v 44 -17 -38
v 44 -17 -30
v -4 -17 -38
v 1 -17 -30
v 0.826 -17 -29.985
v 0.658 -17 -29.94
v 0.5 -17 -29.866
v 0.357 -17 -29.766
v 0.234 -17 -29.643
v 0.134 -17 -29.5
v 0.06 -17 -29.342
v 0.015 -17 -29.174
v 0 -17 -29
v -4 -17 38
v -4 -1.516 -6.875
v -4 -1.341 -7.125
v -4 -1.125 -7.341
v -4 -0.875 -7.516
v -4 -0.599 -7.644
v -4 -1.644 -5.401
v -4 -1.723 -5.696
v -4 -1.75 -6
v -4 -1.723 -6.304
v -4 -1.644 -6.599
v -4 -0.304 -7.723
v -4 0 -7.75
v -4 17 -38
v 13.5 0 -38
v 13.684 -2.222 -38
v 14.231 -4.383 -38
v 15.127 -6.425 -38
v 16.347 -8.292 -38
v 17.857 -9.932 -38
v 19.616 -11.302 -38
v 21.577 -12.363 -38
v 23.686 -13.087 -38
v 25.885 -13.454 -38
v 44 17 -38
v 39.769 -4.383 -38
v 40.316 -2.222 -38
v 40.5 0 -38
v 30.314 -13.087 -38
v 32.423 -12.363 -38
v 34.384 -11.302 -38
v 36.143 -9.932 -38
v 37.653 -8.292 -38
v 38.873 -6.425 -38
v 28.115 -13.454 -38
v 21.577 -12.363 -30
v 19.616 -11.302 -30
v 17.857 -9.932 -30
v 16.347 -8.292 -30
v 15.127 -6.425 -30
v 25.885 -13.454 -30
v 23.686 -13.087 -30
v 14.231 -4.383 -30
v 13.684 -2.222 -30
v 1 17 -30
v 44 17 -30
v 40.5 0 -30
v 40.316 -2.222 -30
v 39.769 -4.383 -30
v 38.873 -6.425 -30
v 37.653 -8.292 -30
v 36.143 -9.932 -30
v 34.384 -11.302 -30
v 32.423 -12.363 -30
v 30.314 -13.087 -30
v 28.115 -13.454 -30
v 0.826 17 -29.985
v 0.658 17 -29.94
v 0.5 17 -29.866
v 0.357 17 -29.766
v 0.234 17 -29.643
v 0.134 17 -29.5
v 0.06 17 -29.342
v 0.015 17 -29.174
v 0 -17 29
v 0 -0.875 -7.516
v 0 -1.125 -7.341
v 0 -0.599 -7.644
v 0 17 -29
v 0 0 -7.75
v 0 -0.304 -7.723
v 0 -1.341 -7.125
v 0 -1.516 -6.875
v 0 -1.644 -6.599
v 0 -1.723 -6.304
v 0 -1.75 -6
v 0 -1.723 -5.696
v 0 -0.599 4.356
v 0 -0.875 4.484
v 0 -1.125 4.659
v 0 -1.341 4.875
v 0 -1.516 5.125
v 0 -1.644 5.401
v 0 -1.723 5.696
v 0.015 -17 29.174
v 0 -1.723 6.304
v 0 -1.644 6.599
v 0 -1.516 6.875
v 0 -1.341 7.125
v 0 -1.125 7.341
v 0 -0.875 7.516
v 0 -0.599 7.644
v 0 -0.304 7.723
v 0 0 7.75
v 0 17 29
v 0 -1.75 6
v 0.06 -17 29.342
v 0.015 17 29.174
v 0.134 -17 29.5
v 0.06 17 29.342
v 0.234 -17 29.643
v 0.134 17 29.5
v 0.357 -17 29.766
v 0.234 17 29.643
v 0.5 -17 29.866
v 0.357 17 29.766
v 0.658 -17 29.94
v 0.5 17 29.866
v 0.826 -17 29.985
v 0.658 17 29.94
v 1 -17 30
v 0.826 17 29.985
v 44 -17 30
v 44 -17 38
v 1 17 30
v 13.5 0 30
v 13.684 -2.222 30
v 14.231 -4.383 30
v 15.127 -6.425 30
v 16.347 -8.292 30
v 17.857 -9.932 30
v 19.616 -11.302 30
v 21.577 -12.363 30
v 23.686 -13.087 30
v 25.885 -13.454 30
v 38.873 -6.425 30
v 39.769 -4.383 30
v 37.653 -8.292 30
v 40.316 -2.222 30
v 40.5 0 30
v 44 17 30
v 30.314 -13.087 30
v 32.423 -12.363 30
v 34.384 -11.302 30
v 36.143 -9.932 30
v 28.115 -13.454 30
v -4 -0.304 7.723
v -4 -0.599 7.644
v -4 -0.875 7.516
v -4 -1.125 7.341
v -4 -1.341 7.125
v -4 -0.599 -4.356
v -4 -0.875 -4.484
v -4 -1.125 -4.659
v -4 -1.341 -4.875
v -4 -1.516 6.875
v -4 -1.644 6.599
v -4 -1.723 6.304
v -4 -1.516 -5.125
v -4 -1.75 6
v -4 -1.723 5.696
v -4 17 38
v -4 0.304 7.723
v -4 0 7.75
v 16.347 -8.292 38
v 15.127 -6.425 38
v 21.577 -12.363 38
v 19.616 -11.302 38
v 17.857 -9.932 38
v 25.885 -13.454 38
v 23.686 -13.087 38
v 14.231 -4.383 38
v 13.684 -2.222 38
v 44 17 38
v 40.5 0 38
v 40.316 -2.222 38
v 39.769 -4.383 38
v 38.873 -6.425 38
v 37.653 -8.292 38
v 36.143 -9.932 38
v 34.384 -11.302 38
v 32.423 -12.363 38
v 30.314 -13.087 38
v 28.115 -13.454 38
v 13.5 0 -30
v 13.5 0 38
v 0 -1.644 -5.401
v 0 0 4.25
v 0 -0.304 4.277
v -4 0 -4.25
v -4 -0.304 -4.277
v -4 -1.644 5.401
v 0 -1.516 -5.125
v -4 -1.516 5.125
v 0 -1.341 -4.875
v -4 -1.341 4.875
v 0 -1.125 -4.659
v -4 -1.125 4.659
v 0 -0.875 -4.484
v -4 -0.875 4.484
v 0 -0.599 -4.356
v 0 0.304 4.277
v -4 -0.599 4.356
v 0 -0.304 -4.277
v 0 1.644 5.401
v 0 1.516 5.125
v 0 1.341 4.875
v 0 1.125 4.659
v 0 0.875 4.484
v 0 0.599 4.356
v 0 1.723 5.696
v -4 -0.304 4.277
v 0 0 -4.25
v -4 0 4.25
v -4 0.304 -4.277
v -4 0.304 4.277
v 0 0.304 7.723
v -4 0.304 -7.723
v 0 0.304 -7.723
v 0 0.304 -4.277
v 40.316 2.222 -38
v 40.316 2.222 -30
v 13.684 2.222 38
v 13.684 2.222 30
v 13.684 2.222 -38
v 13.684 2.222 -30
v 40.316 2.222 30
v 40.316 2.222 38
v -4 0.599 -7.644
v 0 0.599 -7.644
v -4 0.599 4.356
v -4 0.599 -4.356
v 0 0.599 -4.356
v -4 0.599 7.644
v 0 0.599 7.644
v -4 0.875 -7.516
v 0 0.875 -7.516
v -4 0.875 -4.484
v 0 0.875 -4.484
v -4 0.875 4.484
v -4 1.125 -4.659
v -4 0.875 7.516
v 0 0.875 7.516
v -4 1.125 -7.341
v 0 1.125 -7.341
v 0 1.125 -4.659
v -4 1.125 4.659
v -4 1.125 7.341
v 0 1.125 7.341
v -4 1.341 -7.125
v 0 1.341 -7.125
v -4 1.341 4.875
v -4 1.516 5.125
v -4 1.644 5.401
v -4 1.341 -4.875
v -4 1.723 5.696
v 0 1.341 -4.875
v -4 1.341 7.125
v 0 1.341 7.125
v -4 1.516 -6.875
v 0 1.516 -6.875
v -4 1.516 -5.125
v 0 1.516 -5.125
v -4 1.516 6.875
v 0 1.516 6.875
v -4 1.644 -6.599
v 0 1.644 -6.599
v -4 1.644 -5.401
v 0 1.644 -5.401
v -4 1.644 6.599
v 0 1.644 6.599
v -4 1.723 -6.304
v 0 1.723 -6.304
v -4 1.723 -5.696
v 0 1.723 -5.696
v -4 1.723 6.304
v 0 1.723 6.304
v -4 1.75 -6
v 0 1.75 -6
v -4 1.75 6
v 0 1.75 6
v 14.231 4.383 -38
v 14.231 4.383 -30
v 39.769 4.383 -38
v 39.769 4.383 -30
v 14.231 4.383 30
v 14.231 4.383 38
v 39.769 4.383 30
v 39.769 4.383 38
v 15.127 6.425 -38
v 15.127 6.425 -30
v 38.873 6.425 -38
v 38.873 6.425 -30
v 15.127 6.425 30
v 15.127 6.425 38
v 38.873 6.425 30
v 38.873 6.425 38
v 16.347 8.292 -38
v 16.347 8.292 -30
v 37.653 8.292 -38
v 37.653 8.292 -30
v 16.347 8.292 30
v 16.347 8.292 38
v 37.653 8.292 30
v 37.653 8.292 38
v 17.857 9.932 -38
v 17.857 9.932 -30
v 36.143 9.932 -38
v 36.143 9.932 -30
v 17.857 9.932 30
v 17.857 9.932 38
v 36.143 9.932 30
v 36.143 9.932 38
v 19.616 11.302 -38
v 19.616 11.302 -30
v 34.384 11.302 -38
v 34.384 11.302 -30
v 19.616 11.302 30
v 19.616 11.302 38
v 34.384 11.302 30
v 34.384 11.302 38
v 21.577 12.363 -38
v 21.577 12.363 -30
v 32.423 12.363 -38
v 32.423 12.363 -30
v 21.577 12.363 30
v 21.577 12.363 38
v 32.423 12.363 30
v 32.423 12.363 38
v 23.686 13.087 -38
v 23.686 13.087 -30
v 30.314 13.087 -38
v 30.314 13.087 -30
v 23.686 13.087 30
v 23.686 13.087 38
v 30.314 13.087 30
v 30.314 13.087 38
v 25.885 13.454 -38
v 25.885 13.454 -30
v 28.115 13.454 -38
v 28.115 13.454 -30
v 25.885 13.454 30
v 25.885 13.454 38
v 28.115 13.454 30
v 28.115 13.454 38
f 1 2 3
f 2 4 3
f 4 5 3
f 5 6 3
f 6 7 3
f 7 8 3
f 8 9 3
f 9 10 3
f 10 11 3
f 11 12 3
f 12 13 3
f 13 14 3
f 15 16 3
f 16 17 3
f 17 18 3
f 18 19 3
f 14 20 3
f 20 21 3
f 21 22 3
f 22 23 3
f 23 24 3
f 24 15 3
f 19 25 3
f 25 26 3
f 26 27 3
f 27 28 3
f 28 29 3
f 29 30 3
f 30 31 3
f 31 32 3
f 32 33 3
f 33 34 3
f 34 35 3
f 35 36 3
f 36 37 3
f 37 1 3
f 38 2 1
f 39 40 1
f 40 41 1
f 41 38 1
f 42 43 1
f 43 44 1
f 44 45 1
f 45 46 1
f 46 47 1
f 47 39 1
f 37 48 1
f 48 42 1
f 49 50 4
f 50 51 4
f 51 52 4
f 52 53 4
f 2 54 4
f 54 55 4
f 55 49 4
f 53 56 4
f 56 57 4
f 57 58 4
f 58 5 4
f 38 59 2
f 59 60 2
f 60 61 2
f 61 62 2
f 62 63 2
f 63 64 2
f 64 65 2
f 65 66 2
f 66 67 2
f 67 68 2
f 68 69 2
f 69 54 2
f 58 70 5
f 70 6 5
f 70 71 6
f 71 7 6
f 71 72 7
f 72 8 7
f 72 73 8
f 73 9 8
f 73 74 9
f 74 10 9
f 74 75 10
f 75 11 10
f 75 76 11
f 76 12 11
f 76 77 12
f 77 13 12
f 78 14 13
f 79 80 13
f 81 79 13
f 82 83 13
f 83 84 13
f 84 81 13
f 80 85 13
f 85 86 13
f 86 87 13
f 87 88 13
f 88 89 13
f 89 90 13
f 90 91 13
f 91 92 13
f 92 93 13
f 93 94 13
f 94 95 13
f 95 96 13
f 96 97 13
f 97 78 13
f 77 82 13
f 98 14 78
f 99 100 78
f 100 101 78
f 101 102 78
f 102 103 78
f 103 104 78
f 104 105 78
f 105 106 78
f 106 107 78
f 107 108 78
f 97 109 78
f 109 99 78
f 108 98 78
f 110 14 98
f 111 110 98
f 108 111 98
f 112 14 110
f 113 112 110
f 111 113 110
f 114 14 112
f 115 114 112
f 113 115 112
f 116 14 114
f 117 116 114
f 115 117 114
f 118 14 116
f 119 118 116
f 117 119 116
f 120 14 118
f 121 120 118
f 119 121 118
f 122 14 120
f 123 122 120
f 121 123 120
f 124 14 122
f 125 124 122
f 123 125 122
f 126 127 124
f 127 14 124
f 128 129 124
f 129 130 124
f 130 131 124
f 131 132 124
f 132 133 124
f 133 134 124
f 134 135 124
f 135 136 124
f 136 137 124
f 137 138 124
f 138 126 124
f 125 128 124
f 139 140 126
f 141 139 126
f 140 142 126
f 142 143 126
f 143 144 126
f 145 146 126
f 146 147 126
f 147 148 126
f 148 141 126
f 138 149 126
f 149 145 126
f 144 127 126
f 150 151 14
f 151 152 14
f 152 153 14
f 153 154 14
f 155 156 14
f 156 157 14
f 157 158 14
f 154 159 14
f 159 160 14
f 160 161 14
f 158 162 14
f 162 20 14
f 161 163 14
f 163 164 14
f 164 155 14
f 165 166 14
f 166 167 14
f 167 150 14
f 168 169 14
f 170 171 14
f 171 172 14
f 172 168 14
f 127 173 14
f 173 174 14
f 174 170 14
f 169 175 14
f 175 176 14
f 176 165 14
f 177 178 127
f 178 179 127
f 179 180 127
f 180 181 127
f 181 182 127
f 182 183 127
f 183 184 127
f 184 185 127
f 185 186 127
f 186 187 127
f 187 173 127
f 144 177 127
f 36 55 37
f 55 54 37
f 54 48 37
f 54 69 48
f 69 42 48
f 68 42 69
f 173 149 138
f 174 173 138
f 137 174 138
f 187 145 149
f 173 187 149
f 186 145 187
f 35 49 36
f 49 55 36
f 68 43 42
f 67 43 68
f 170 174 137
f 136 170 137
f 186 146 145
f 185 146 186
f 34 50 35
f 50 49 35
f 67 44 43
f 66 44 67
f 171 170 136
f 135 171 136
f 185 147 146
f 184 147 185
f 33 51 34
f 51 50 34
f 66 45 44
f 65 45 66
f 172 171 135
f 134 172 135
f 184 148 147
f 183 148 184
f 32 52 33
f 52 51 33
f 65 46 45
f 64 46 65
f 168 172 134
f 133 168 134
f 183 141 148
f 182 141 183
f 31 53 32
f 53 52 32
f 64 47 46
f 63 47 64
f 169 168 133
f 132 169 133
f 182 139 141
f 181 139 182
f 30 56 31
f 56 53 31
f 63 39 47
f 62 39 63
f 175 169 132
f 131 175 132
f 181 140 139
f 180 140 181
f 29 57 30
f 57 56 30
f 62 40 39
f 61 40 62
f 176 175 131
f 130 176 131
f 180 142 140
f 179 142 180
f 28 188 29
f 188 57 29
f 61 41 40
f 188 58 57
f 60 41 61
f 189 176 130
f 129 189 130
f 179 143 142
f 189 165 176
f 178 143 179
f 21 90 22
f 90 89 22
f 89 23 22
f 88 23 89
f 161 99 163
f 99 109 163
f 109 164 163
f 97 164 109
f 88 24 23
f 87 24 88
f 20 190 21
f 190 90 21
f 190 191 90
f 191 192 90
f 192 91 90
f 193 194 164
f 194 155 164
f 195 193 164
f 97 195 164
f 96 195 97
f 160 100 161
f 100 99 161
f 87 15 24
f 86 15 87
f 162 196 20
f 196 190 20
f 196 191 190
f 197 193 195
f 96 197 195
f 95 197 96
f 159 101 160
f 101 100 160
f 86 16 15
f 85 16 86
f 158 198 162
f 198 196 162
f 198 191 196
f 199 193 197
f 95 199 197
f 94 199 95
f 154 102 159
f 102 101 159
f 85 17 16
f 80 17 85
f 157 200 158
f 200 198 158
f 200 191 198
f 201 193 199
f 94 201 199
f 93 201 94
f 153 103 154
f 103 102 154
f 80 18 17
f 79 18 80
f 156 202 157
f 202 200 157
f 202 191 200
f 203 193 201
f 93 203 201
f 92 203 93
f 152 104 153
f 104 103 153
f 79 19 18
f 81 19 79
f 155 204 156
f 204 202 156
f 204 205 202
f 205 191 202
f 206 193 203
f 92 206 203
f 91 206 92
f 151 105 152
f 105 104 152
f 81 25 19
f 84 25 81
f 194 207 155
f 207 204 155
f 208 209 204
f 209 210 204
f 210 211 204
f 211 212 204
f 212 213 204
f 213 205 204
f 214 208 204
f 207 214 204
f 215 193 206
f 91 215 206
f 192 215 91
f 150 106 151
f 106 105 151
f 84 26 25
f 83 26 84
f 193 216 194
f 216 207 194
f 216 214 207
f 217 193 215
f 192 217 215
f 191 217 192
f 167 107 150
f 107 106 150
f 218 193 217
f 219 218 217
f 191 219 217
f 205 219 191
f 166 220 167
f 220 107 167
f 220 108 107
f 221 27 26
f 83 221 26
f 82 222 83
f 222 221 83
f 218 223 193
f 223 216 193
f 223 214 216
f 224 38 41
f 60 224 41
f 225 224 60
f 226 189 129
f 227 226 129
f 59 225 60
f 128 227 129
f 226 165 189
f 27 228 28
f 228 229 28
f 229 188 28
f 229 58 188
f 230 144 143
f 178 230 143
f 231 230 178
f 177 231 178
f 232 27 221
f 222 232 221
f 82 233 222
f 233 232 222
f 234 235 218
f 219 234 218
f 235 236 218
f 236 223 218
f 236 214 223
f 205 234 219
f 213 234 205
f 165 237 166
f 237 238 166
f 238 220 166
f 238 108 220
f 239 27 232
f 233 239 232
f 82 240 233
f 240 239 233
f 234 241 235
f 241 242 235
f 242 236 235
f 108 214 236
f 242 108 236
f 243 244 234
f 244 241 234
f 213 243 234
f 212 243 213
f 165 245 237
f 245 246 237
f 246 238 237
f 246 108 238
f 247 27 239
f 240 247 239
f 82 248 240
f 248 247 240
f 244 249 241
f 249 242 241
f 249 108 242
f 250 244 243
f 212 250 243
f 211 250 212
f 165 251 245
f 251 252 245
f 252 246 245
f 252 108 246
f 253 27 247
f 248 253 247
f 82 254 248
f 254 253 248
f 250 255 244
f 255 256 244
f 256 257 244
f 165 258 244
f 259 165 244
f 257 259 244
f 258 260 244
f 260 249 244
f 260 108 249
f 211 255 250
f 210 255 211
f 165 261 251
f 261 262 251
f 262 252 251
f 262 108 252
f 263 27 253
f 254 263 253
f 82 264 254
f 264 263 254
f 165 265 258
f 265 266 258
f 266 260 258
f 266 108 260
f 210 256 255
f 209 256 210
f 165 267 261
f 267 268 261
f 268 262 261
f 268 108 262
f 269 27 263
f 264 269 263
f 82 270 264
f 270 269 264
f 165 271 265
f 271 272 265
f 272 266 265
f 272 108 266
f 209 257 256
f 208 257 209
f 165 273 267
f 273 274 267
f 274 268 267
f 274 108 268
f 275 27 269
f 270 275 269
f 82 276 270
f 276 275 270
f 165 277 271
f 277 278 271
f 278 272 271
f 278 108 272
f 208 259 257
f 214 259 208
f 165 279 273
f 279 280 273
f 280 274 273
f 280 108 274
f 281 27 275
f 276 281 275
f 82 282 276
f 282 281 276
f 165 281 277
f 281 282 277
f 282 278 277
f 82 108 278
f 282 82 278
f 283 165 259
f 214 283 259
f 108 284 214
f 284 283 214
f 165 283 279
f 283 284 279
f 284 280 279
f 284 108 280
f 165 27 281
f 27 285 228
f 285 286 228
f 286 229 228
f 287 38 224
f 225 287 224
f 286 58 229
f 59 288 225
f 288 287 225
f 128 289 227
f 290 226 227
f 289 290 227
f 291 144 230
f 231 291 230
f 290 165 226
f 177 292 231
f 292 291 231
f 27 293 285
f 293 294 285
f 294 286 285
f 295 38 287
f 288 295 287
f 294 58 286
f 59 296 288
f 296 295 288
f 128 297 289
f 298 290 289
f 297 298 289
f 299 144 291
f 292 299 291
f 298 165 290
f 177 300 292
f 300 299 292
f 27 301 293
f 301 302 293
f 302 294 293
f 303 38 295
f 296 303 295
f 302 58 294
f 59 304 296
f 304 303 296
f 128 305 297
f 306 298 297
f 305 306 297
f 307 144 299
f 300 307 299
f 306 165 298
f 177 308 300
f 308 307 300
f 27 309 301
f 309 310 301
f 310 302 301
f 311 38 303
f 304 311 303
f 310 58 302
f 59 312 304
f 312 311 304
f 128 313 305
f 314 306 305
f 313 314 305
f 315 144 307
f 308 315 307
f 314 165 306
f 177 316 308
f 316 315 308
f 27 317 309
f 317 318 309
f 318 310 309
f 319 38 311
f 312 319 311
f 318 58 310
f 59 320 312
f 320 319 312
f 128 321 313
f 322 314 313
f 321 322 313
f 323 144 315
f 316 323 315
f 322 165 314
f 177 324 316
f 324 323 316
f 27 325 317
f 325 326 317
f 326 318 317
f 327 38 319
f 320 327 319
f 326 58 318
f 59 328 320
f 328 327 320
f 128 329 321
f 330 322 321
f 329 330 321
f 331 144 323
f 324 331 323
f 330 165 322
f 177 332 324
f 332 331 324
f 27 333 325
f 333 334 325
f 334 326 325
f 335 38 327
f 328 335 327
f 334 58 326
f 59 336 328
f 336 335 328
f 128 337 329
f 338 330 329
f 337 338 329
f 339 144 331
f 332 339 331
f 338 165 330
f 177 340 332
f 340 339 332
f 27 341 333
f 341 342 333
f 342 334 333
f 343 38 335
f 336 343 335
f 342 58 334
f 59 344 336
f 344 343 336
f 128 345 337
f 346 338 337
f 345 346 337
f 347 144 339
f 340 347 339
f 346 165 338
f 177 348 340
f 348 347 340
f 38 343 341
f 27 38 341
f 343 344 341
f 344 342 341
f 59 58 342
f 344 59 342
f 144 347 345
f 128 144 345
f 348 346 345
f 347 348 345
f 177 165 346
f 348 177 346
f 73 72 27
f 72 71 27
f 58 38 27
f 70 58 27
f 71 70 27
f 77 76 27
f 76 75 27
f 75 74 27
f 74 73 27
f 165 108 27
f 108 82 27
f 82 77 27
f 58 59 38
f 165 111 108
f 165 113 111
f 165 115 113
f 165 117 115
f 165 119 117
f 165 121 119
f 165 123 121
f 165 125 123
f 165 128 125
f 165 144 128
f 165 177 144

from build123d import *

# Parameters (mm, degrees)
SKETCH1_W           = 60
SKETCH1_H           = 34
SKETCH1_R           = 1.75
BOSS_EXTRUDE1_DEPTH = 4
SKETCH3_W           = 48
SKETCH3_H           = 34
SKETCH3_R           = 13.5
BOSS_EXTRUDE2_DEPTH = 8
FILLET4_R           = 1
FILLET5_R           = 1


with BuildPart() as part:
    # Sketch1 → Boss-Extrude1 (new body)
    with BuildSketch(Plane(origin=(0, 0, 0), x_dir=(0, 0, -1), z_dir=(1, 0, 0))):
        Rectangle(SKETCH1_W, SKETCH1_H)
        with Locations((-6, 0)):
            Circle(SKETCH1_R, mode=Mode.SUBTRACT)
        with Locations(Location((6, 0, 0), (0, 0, 180))):
            Circle(SKETCH1_R, mode=Mode.SUBTRACT)
    extrude(amount=-BOSS_EXTRUDE1_DEPTH)

    # Sketch3 → Boss-Extrude2 (add)
    with BuildSketch(Plane.XY.offset(30)):
        with Locations((20, 0)):
            Rectangle(SKETCH3_W, SKETCH3_H)
        with Locations((27, 0)):
            Circle(SKETCH3_R, mode=Mode.SUBTRACT)
    boss_extrude2 = extrude(amount=BOSS_EXTRUDE2_DEPTH)

    # Mirror1: Boss-Extrude2 across plane
    add(boss_extrude2.mirror(Plane(origin=(0, 0, 0), x_dir=(1, 0, 0), z_dir=(0, 0, -1))))

    # Fillet4
    fillet4_edges = [part.edges().sort_by_distance(p)[0] for p in [
        (0, 0, 30),
    ]]
    fillet(fillet4_edges, radius=FILLET4_R)

    # Fillet5
    fillet5_edges = [part.edges().sort_by_distance(p)[0] for p in [
        (0, 0, -30),
    ]]
    fillet(fillet5_edges, radius=FILLET5_R)


solid = part.part
